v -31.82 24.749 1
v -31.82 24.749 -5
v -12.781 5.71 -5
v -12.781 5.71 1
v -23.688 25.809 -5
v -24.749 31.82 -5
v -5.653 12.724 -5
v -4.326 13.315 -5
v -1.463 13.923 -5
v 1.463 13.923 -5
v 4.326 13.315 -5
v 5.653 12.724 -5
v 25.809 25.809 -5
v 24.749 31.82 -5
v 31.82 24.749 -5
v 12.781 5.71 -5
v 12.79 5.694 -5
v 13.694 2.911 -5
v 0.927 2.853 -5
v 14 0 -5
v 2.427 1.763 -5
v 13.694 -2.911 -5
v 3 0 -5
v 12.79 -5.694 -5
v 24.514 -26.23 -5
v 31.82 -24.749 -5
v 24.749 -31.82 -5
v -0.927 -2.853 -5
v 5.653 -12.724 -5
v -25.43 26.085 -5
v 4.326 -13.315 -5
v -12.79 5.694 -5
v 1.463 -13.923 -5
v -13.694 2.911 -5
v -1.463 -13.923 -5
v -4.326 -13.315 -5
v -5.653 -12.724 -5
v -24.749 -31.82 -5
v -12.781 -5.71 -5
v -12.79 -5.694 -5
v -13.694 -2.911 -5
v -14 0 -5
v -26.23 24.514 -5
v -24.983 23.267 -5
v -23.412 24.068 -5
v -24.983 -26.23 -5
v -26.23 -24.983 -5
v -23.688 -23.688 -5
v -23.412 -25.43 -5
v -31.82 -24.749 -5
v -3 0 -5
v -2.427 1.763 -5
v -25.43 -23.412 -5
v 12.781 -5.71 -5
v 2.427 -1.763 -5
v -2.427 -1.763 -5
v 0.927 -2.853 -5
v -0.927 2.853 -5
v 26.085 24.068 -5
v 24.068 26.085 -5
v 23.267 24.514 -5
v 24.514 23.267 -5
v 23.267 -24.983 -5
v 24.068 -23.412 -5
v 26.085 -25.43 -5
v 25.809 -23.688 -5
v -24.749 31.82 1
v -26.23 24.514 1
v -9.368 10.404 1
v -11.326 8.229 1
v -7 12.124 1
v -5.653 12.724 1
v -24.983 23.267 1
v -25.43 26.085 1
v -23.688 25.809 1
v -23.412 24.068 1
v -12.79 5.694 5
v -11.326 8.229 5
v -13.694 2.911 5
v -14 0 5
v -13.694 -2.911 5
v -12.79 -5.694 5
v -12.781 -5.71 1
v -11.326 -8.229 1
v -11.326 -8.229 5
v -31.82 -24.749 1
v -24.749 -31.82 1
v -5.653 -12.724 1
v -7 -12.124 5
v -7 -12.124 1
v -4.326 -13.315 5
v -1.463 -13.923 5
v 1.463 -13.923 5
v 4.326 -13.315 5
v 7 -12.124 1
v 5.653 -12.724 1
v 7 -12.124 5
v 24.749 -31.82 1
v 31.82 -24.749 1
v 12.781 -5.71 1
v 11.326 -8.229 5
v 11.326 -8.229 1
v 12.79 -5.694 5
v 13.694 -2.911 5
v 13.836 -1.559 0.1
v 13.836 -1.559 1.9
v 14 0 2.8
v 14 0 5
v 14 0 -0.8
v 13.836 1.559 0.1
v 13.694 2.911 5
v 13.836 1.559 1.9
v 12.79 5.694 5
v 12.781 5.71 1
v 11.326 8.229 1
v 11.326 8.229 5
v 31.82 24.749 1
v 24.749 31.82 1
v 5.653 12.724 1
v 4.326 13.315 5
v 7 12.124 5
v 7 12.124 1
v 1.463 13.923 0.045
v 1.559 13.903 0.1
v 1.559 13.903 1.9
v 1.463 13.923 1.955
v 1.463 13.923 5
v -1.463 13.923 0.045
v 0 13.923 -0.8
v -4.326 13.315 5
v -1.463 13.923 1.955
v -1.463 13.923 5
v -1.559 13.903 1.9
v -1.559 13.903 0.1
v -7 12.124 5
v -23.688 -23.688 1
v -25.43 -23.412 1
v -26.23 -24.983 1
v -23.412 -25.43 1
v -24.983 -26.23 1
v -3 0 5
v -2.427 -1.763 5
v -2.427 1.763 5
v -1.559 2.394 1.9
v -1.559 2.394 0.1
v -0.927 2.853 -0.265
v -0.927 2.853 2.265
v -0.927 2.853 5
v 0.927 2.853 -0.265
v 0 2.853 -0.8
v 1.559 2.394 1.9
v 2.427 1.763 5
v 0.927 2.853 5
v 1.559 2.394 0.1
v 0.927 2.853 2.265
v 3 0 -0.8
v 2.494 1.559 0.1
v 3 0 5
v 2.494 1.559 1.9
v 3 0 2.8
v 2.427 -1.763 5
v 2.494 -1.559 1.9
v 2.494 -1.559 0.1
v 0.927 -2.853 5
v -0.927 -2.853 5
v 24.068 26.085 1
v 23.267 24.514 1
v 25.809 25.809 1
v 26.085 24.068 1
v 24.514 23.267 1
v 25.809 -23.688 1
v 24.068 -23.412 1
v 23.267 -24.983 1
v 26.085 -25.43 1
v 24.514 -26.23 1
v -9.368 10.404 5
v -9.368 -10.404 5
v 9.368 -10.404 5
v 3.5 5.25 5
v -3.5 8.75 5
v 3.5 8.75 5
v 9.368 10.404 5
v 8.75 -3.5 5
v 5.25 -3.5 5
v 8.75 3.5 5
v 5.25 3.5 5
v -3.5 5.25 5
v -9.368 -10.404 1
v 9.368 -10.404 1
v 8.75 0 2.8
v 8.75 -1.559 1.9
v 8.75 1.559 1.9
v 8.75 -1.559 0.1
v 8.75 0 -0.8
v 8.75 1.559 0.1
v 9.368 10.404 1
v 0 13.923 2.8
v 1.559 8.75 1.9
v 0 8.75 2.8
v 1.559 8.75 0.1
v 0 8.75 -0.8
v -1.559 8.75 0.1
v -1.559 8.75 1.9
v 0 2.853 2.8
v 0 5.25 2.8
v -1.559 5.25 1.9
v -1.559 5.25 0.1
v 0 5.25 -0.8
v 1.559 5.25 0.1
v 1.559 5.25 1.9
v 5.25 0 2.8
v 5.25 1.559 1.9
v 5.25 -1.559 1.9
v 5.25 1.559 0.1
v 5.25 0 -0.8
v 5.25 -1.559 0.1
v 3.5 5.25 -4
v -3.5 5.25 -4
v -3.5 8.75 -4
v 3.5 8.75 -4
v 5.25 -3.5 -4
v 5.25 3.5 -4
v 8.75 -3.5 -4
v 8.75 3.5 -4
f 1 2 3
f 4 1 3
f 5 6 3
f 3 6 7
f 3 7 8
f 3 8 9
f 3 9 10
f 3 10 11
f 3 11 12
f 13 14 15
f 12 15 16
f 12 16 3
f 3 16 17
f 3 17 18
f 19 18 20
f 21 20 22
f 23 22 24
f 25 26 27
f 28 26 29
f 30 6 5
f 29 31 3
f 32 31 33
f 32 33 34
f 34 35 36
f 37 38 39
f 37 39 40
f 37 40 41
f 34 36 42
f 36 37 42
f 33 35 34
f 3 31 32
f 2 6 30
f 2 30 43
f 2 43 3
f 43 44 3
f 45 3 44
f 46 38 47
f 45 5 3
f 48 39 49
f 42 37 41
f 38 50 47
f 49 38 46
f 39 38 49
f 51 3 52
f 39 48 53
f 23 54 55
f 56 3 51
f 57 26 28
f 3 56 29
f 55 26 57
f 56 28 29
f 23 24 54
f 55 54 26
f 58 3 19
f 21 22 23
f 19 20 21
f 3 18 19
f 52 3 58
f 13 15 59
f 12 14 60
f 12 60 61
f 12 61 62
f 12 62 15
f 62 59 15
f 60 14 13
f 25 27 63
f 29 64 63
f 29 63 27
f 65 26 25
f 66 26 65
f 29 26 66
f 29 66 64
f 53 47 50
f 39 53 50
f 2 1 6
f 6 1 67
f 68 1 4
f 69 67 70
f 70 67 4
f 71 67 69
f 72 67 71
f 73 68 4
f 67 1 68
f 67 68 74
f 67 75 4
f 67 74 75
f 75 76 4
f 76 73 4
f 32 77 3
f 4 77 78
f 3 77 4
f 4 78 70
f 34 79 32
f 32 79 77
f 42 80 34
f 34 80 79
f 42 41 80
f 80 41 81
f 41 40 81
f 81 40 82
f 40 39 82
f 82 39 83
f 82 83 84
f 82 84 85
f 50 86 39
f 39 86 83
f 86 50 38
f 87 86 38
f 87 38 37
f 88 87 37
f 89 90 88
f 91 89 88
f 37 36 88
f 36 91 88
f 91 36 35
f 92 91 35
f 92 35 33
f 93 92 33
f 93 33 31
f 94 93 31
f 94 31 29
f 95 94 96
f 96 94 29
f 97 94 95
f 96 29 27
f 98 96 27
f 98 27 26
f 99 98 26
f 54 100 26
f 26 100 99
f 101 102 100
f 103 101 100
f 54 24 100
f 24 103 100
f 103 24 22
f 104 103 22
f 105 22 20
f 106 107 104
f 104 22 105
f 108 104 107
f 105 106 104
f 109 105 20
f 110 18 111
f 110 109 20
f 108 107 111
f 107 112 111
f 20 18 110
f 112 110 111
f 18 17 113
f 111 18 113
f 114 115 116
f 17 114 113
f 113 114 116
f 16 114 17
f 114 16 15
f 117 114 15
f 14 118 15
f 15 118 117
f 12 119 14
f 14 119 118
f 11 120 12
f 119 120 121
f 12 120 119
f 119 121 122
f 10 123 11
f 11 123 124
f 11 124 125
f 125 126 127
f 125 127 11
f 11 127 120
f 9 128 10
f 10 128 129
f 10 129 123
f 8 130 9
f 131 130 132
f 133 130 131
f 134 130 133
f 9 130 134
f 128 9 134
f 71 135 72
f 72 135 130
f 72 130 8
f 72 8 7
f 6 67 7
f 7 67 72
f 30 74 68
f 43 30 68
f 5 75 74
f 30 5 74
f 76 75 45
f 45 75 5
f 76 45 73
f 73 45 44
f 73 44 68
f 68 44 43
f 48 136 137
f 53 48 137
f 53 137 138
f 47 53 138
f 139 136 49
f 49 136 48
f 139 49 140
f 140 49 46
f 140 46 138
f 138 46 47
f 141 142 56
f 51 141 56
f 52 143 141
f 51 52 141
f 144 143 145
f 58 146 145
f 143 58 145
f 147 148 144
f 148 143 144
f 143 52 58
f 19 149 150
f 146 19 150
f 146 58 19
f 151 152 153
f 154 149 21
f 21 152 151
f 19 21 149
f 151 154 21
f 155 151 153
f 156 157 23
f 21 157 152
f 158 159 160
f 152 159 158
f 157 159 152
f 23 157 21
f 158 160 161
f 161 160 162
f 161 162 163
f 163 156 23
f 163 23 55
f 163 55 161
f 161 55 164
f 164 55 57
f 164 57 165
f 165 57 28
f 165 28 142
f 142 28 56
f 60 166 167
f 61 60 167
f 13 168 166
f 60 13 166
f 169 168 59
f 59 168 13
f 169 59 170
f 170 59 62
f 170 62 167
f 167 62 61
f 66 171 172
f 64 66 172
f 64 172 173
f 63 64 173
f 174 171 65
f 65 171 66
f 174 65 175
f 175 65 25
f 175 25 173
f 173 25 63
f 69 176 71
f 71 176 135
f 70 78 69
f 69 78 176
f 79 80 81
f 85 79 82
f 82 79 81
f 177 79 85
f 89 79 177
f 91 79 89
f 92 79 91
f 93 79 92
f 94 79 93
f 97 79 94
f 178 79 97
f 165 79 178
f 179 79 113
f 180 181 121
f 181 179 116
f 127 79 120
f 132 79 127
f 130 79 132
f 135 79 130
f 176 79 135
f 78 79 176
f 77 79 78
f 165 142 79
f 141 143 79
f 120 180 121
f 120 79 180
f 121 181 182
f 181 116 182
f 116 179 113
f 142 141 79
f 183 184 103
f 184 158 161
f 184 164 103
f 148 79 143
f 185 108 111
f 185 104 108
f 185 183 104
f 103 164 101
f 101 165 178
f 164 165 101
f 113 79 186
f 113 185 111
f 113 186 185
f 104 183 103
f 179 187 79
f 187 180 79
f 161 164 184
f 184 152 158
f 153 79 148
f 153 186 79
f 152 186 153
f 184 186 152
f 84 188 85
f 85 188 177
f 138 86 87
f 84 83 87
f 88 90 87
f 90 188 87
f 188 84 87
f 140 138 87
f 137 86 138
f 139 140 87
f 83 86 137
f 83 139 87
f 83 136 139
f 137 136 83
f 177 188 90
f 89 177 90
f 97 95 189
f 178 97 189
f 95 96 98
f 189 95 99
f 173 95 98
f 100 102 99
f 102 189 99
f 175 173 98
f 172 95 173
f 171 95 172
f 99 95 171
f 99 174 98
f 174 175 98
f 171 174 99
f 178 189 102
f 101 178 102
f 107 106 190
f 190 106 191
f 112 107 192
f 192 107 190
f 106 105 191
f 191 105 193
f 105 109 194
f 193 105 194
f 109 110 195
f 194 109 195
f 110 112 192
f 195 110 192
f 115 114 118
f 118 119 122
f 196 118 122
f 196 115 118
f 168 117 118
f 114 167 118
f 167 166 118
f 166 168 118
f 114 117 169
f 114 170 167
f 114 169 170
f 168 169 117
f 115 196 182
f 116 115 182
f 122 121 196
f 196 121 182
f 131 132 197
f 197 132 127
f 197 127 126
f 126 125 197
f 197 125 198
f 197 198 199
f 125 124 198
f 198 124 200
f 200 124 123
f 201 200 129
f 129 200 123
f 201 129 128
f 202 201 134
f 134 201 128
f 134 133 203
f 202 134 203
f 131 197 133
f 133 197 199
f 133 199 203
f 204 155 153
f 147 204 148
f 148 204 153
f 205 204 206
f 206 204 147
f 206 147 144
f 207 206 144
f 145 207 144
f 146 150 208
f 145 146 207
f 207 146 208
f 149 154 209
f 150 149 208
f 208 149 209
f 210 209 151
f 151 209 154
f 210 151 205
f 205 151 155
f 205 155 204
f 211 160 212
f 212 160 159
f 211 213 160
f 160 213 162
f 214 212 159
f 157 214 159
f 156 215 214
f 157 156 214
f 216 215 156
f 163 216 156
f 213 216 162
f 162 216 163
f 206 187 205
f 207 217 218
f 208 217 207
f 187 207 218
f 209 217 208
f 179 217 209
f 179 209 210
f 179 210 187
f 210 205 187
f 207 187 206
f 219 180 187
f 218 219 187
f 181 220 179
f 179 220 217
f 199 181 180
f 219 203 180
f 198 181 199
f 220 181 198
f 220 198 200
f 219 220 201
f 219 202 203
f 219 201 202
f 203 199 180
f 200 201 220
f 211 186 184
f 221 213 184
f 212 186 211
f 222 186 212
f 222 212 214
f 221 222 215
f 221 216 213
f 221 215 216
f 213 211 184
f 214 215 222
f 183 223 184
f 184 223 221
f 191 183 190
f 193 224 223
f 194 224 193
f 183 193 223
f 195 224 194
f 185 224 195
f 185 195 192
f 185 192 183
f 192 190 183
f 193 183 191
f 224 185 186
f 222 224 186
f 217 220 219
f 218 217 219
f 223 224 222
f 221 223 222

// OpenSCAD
CONNECTOR_HEIGHT = 10;

module nut()
{
	//cylinder(r=3.25, h=2.5, center=true);
	cube([3.5,7,10], center=true);
}

module nutTrap()
{
	nut();

	rotate([0,90,0])
		cylinder(r=1.8, h=15, center=true);
	
}


module shaft6()
{
	cylinder(r=3, h=2*CONNECTOR_HEIGHT, center=true);
}

module shaft3()
{
	cylinder(r=1.5, h=2*CONNECTOR_HEIGHT, center=true);
}

module wheelAdapter()
{
	difference()
	{
		union()
		{
			translate([0,0,-2])
			{
				rotate([0,0,45])
				{
					cube([80,10,6],center=true);			
					cube([10,80,6],center=true);			
				}
			}

			cylinder(r=14, h=CONNECTOR_HEIGHT, center=true);
		}

		translate([7,0,1])
			nutTrap();

		rotate([0,0,90])
		{
			translate([7,0,1])
				nutTrap();
		}

		shaft6();

		rotate([0,0,45])
		{
			translate([35,0,0])
				shaft3();
			translate([-35,0,0])
				shaft3();
			translate([0,35,0])
				shaft3();
			translate([0,-35,0])
				shaft3();
		}
	}
}

wheelAdapter();
